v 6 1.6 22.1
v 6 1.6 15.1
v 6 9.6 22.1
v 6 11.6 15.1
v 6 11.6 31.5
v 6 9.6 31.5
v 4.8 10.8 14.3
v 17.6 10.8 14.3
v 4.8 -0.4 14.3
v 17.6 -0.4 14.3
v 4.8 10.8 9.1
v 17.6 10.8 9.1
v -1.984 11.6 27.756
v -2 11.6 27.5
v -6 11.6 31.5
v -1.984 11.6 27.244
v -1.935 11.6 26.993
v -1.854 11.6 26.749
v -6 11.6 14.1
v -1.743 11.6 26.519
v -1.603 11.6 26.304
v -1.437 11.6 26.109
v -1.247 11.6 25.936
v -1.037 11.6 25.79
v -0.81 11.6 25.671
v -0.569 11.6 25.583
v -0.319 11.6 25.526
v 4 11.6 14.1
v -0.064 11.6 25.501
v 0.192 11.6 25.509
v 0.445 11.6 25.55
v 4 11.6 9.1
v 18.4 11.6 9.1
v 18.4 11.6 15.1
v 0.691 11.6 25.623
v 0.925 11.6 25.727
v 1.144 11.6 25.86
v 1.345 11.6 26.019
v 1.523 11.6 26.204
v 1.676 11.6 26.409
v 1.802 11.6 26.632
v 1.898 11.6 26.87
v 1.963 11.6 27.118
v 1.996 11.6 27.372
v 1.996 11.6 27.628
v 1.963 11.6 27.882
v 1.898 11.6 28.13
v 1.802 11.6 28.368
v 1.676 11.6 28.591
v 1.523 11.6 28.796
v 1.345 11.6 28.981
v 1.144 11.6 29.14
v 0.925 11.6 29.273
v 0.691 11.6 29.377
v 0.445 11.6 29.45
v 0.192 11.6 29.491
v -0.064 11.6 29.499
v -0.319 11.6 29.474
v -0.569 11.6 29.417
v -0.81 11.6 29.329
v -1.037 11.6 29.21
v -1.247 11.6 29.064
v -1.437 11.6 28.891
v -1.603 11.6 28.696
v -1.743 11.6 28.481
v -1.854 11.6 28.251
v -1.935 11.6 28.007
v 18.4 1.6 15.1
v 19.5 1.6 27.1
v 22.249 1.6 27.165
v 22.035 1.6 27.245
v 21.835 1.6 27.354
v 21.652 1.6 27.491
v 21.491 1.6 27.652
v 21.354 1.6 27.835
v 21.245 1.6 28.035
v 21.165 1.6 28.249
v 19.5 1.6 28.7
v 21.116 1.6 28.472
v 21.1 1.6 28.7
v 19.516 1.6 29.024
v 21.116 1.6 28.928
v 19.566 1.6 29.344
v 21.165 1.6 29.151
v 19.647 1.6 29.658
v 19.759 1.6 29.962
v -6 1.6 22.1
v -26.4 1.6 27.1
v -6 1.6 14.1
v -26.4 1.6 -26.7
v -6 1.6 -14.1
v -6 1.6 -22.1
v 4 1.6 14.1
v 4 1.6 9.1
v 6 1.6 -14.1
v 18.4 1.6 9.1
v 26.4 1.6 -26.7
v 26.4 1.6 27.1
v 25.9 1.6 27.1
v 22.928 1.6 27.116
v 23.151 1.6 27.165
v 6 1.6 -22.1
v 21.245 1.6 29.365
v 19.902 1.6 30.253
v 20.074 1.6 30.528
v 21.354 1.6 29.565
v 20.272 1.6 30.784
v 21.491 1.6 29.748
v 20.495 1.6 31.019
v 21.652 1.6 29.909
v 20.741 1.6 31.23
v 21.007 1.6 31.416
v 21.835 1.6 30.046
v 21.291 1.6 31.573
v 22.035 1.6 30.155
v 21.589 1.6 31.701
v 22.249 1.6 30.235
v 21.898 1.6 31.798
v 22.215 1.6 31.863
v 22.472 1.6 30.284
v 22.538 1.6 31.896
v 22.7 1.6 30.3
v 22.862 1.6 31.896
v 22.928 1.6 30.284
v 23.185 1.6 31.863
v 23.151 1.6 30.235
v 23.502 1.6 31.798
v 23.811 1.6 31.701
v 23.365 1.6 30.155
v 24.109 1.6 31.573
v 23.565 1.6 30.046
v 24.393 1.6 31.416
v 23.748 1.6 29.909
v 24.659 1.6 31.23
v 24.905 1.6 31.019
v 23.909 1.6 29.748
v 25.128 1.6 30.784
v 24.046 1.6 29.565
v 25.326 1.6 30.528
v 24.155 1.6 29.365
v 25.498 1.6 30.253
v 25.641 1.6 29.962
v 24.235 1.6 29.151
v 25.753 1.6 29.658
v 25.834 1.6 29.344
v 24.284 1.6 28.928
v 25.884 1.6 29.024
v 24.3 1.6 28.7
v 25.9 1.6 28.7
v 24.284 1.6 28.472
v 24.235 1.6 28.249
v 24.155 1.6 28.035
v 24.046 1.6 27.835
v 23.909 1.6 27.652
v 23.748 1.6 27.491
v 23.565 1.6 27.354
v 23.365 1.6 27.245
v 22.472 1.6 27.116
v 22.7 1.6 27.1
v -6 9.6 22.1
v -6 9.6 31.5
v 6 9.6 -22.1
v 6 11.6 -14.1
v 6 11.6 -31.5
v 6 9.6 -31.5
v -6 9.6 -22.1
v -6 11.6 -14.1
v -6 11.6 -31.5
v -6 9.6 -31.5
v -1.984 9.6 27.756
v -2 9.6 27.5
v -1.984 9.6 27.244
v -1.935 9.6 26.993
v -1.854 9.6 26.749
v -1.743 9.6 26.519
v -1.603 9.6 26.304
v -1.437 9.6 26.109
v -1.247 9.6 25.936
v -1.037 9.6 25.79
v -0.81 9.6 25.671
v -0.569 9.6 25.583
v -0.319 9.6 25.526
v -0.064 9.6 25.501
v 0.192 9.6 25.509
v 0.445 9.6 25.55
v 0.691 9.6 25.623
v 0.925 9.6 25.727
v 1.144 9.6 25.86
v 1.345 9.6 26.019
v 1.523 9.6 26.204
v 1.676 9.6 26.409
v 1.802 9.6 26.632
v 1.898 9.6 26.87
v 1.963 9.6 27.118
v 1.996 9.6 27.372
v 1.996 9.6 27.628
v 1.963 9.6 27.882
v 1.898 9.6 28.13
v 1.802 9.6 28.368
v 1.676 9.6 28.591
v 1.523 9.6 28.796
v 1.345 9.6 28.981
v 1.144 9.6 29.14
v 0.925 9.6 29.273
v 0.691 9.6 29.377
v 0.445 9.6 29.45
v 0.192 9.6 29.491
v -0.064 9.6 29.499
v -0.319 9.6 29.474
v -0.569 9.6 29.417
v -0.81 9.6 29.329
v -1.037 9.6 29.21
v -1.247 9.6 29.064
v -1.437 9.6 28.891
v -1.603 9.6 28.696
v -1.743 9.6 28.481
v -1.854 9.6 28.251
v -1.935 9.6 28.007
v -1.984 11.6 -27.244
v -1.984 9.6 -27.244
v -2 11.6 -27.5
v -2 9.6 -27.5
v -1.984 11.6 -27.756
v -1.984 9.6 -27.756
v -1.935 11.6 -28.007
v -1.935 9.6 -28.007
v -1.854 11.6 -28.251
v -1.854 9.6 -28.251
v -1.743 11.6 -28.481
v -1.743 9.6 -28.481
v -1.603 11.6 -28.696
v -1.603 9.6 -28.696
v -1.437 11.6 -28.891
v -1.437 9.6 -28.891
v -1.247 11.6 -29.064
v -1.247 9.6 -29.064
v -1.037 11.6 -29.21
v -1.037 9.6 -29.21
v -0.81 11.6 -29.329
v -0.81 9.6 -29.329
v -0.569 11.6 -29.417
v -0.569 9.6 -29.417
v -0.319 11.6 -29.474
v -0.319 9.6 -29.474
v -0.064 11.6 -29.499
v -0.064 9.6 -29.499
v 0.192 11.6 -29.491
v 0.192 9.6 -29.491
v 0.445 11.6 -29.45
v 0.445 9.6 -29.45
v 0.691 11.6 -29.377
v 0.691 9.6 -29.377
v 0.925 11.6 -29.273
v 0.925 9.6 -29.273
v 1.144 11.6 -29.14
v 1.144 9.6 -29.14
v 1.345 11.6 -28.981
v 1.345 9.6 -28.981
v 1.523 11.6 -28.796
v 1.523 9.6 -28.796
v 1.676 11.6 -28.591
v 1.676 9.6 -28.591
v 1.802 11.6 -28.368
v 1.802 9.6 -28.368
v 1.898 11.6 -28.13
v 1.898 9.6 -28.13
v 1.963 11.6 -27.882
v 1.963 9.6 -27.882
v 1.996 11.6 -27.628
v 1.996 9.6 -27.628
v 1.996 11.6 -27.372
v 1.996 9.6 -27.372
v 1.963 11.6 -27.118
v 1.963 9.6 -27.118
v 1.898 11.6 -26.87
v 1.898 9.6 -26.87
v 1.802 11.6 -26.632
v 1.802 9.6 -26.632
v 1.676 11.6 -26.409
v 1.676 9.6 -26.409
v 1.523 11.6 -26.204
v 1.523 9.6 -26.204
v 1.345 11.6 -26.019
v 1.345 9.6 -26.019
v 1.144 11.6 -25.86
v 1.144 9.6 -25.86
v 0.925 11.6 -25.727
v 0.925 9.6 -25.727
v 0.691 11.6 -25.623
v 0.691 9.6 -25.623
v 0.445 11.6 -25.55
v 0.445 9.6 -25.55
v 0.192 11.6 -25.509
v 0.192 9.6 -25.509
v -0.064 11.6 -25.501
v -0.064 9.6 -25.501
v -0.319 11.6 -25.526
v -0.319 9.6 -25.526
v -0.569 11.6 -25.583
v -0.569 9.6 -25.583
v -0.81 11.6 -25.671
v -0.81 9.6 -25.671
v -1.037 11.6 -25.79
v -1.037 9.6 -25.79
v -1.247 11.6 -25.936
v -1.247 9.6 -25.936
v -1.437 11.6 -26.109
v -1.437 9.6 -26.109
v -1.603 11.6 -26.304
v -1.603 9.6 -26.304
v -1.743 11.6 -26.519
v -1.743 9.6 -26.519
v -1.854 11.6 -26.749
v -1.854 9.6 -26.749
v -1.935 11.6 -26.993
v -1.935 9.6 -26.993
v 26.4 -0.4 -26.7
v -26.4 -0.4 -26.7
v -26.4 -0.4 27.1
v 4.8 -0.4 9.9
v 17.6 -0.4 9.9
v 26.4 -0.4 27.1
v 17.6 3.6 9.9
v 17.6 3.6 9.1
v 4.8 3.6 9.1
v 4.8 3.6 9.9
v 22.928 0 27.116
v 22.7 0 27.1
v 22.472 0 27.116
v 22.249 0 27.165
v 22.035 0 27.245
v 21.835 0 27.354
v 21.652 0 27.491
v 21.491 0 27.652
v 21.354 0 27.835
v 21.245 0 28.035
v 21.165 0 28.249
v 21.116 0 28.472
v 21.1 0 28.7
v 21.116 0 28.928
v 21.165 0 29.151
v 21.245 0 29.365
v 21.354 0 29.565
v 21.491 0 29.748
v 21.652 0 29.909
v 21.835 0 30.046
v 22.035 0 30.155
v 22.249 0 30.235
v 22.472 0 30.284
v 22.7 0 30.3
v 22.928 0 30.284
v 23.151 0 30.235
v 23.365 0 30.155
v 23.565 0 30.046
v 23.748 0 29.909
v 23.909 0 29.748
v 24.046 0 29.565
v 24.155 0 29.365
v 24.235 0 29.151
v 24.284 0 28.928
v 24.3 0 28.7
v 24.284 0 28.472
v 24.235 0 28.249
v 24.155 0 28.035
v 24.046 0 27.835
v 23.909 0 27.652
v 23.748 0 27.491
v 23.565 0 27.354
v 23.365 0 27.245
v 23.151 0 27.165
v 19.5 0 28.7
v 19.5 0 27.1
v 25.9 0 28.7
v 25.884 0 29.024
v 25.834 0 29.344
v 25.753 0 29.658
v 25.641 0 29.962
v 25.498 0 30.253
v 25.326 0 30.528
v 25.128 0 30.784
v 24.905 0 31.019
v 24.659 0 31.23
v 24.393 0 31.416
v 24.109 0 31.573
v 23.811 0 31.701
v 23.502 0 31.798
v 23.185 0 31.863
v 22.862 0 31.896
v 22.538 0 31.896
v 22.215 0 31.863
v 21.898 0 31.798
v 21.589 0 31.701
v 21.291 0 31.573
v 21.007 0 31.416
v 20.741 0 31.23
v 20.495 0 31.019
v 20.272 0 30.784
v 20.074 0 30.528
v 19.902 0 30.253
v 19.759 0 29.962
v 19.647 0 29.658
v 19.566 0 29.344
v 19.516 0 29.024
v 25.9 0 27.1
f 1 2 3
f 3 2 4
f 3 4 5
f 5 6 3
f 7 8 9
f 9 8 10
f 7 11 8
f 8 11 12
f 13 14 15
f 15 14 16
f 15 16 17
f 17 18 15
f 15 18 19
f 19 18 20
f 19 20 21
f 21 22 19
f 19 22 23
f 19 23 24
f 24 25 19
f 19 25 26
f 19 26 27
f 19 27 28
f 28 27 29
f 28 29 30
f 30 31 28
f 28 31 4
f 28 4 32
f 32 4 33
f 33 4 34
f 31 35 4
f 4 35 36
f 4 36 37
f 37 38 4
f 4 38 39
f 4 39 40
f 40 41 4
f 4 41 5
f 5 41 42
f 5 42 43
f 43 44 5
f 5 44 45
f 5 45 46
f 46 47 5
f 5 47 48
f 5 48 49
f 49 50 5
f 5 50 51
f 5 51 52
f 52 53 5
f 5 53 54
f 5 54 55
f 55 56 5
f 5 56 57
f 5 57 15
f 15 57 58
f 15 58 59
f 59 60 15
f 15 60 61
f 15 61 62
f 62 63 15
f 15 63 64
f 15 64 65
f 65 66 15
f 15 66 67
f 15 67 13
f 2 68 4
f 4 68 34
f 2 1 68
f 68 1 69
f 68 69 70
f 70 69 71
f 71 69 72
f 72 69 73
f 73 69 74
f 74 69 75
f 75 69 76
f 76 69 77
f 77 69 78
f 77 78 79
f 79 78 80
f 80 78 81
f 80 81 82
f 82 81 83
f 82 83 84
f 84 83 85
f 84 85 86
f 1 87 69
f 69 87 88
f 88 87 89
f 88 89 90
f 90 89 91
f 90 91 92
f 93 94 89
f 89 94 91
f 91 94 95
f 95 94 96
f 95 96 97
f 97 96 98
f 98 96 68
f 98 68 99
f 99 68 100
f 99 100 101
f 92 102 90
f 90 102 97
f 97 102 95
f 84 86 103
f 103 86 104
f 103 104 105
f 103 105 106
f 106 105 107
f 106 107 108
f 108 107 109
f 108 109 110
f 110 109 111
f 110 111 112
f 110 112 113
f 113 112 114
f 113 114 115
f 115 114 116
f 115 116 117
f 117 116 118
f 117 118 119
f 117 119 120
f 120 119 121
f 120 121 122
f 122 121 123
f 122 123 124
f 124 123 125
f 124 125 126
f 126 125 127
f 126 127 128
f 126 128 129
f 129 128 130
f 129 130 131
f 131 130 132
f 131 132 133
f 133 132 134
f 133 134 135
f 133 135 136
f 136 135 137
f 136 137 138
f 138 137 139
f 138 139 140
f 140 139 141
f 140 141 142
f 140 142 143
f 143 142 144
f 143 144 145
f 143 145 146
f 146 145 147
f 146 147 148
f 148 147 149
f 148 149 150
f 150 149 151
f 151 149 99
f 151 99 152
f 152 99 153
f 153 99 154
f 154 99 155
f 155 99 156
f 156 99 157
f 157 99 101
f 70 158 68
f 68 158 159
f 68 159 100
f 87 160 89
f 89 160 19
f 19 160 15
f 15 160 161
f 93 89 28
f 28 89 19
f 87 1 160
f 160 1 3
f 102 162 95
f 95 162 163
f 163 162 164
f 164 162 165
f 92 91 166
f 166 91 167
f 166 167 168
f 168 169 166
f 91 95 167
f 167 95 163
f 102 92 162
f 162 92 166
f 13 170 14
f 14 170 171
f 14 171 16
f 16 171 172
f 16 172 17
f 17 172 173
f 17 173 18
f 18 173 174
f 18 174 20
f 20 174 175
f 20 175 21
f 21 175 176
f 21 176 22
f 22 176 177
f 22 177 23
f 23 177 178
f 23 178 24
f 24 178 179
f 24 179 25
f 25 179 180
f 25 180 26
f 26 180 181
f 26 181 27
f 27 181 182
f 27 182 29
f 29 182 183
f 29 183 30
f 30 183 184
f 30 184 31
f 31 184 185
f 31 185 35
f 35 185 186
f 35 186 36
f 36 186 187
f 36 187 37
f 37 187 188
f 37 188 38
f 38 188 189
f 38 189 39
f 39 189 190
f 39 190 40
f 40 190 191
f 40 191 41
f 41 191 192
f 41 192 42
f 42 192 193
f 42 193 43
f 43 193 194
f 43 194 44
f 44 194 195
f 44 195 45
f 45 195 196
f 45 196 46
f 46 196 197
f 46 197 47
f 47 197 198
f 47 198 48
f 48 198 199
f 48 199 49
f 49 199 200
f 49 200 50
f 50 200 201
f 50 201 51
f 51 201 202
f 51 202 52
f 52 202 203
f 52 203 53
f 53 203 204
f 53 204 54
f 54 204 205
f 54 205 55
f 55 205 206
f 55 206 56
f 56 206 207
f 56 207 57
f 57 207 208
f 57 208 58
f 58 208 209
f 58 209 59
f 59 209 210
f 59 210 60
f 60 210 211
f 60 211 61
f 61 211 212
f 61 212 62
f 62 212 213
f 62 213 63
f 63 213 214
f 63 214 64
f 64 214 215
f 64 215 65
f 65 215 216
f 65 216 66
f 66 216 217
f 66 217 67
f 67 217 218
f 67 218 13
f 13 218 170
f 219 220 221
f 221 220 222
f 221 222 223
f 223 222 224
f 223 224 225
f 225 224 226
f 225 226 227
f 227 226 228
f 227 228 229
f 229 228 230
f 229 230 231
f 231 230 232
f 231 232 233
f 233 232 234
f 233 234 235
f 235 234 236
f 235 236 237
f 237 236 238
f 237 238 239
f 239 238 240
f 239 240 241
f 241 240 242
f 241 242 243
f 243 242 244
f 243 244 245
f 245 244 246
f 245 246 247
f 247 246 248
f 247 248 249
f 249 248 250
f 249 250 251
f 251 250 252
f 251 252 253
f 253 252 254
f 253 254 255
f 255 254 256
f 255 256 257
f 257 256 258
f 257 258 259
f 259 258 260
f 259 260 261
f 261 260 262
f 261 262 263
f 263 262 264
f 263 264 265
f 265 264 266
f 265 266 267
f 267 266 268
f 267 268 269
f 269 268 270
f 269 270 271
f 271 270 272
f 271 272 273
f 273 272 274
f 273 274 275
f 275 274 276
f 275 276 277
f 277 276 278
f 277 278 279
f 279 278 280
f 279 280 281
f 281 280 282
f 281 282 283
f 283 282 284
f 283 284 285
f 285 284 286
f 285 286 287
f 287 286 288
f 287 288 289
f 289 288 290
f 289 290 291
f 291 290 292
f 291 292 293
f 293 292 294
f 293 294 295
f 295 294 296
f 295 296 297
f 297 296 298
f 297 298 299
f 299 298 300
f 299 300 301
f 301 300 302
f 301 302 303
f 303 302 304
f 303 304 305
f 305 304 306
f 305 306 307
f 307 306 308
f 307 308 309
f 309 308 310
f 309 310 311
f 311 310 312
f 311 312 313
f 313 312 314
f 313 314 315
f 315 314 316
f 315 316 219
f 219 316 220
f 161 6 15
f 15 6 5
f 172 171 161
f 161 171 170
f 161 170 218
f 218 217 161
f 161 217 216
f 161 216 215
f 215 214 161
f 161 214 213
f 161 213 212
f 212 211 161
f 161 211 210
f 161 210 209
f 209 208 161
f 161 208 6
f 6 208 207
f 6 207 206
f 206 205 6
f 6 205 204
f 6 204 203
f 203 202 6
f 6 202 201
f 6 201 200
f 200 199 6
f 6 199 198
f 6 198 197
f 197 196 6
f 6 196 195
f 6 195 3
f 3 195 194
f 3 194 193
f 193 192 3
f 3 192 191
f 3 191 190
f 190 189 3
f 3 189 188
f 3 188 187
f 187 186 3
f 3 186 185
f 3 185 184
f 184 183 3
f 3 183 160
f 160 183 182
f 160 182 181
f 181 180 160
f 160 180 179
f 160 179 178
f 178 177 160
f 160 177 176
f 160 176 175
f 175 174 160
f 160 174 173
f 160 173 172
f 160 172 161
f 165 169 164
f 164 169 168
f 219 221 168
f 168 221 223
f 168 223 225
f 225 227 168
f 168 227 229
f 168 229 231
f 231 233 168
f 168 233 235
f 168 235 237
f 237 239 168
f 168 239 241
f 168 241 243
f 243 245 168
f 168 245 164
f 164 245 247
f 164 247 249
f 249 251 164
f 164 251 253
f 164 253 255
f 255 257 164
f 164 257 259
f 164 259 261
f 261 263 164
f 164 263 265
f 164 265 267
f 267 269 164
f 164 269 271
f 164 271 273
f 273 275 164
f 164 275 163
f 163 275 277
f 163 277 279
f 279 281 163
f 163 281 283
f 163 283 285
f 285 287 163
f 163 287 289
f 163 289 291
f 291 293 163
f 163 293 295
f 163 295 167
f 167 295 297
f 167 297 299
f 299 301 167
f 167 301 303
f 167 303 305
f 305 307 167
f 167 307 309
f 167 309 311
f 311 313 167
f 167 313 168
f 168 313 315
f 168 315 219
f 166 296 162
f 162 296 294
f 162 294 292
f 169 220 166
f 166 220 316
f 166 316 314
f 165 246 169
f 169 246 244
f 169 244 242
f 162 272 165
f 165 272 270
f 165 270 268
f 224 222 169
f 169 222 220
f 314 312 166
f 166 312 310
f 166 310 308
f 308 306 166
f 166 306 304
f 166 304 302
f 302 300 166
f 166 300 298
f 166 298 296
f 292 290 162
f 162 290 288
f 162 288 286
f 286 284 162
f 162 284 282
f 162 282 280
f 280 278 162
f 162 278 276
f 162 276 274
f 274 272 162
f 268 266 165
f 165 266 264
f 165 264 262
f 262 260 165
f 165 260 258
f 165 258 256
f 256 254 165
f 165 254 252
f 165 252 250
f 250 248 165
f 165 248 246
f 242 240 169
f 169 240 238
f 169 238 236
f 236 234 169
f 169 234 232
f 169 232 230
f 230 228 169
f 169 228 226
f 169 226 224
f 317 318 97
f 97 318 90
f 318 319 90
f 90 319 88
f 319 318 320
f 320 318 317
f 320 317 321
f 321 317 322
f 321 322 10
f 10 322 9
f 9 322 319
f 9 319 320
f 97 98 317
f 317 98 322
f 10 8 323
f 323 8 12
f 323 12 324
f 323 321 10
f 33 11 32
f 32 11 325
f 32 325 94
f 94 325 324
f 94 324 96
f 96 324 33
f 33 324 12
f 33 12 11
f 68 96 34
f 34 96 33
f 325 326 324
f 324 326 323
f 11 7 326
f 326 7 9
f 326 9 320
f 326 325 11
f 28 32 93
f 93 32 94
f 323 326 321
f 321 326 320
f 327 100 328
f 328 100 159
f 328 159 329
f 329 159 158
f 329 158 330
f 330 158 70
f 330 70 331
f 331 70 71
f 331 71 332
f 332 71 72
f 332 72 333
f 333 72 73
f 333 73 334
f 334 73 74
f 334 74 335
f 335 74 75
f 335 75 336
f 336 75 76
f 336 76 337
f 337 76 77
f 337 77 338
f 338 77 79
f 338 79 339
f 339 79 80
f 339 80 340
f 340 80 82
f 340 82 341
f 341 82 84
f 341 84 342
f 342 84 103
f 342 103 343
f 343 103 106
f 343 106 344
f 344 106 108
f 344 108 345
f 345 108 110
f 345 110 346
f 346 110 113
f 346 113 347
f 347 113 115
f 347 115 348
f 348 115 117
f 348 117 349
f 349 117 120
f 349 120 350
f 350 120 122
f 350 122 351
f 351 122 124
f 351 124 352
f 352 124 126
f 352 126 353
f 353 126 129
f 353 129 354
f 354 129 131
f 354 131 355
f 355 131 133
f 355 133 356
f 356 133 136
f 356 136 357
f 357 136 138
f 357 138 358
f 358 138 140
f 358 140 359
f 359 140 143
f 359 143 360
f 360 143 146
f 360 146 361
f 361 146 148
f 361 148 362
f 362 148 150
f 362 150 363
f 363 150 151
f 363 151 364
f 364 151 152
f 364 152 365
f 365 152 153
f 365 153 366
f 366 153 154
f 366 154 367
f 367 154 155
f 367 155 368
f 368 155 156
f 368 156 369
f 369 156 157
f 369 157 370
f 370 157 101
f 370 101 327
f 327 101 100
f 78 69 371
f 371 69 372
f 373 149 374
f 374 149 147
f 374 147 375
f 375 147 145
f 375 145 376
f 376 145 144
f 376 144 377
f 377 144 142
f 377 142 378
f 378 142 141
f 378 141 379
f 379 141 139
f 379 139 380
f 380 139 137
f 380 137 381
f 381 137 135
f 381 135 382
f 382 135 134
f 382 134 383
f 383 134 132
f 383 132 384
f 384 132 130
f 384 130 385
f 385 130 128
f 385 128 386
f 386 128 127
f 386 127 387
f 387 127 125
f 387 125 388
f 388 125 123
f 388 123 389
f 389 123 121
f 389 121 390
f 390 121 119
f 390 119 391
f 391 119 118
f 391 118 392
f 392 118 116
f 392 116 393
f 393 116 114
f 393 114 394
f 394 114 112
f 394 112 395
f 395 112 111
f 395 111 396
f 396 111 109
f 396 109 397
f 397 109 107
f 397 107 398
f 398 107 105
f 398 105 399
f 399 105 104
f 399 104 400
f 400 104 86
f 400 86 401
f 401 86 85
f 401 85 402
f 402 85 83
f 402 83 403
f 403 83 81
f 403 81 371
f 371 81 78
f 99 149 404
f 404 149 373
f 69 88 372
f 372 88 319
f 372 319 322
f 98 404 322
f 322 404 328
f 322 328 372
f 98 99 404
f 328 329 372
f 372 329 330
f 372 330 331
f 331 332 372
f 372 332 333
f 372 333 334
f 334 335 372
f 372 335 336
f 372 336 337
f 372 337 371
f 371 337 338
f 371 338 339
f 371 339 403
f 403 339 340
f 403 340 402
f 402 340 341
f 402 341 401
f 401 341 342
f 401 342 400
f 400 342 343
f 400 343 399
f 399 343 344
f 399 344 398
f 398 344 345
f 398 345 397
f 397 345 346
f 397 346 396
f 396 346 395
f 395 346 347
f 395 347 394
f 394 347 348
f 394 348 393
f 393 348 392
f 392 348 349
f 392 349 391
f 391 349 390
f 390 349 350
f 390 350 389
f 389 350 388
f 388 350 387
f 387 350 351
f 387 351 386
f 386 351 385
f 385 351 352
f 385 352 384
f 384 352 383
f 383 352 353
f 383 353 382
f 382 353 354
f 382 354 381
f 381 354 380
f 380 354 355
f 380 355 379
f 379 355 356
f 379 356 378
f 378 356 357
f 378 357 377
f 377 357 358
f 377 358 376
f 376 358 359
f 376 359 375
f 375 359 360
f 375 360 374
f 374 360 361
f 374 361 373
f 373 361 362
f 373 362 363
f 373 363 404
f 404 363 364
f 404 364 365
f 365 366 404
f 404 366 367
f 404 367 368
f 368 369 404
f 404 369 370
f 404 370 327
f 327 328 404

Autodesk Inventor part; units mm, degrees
ref_plane "YZ Plane" through (0, 0, 0) normal (1, 0, 0) x (0, 1, 0)
ref_plane "XZ Plane" through (0, 0, 0) normal (0, 1, 0) x (-1, 0, 0)
ref_plane "XY Plane" through (0, 0, 0) normal (0, 0, 1) x (1, 0, 0)
sketch "Szkic1" plane through (0, 0, 0) normal (0, 1, 0) x (-1, 0, 0)
  line L0 (26.7, -27.1) -> (-26.7, -27.1)
  line L1 (-26.7, -27.1) -> (-26.7, 27.1)
  line L2 (-26.7, 27.1) -> (26.7, 27.1)
  line L3 (26.7, 27.1) -> (26.7, -27.1)
  line L4 (26.7, -27.1) -> (-26.7, 27.1) construction
  line L5 (-26.7, -27.1) -> (26.7, 27.1) construction
  point P0 (0, 0)
  dimension "d0" = 53.4
  dimension "d1" = 54.2
extrude "Wyciągnięcie proste1" add sketch "Szkic1" along normal blind 1.6
sketch "Szkic11" plane through (0, 1.6, 0) normal (0, 1, 0) x (1, 0, 0)
  line L0 (-26.7, -27.1) -> (26.7, -27.1) projected
  line L1 (26.7, -27.1) -> (25.9, -27.1)
  line L2 (25.9, -27.1) -> (19.5, -27.1)
  line L3 (19.5, -27.1) -> (19.5, -28.7)
  line L4 (19.5, -28.7) -> (25.9, -28.7)
  line L5 (25.9, -28.7) -> (25.9, -27.1)
  arc A0 (19.5, -28.7) -> (25.9, -28.7) centre (22.7, -28.7) ccw
  point P0 (0, 0)
  dimension "d37" = 0.8
  dimension "d38" = 6.4
  dimension "d39" = 1.6
  dimension "d40" = 3.2
extrude "Wyciągnięcie proste10" add sketch "Szkic11" against normal blind 1.6
sketch "Szkic12" plane through (0, 1.6, 0) normal (0, 1, 0) x (1, 0, 0)
  arc A0 (19.5, -28.7) -> (25.9, -28.7) centre (22.7, -28.7) ccw projected
  circle A1 centre (22.7, -28.7) radius 1.6
  point P0 (0, 0)
  dimension "d43" = 3.2
extrude "Wyciągnięcie proste11" cut sketch "Szkic12" against normal through all
sketch "Szkic24" plane through (0, 1.6, 0) normal (0, 1, 0) x (1, 0, 0)
  line L0 (11.2, -12.1) -> (11.2, -27.1)
  line L1 (-26.7, -27.1) -> (19.5, -27.1) projected
  line L2 (11.2, -12.1) -> (26.2, -12.1) construction
  line L3 (11.2, -12.1) -> (26.7, -12.1)
  line L4 (26.7, -27.1) -> (26.7, 27.1) projected
  line L5 (11.2, -12.1) -> (26.7, -12.1) construction
  line L6 (4.8, -9.9) -> (17.6, -9.9)
  line L7 (17.6, -9.9) -> (17.6, -14.3)
  line L8 (17.6, -14.3) -> (4.8, -14.3)
  line L9 (4.8, -14.3) -> (4.8, -9.9)
  line L10 (4.8, -9.9) -> (17.6, -14.3) construction
  line L11 (17.6, -9.9) -> (4.8, -14.3) construction
  point P0 (0, 0)
  dimension "d104" = 15
  dimension "d105" = 90
  dimension "d106" = 15.5
  dimension "d107" = 0
  dimension "d108" = 12.8
  dimension "d109" = 4.4
extrude "Wyciągnięcie proste22" cut sketch "Szkic24" against normal through all
sketch "Szkic33" plane through (0, 1.6, 0) normal (0, 1, 0) x (1, 0, 0)
  line L0 (4.8, -14.3) -> (17.6, -14.3) projected
  line L1 (4, 4) -> (4, 25.6) projected
  line L2 (17.6, -14.3) -> (4, -14.3)
  line L3 (4, -14.3) -> (4, -15.1)
  line L4 (4, -15.1) -> (17.6, -15.1)
  line L5 (17.6, -15.1) -> (17.6, -14.3)
  line L6 (4, -15.1) -> (4.8, -15.1)
  line L7 (4.8, -15.1) -> (4.8, -9.1)
  line L8 (4.8, -9.1) -> (4, -9.1)
  line L9 (4, -9.1) -> (4, -15.1)
  line L10 (17.6, -15.1) -> (18.4, -15.1)
  line L11 (18.4, -15.1) -> (18.4, -9.1)
  line L12 (18.4, -9.1) -> (17.6, -9.1)
  line L13 (17.6, -9.1) -> (17.6, -15.1)
  point P0 (0, 0)
  point P1 (4, -21.6)
  point P2 (4, -10)
  point P3 (17.6, -14.3)
  point P4 (4, -10)
  dimension "d139" = 0.8
  dimension "d140" = 6
  dimension "d141" = 0.8
extrude "Wyciągnięcie proste30" add sketch "Szkic33" along normal blind 10
sketch "Szkic34" plane through (0, 1.6, 0) normal (0, 1, 0) x (1, 0, 0)
  line L0 (17.6, -9.9) -> (4.8, -9.9) projected
  line L1 (4.8, -14.3) -> (4.8, -9.1) projected
  line L2 (17.6, -9.9) -> (4.8, -9.9)
  line L3 (4.8, -9.9) -> (4.8, -9.1)
  line L4 (4.8, -9.1) -> (17.6, -9.1)
  line L5 (17.6, -9.1) -> (17.6, -9.9)
  point P0 (0, 0)
extrude "Wyciągnięcie proste31" add sketch "Szkic34" along normal blind 2
sketch "Szkic35" plane through (0, 11.6, 0) normal (0, 1, 0) x (1, 0, 0)
  line L0 (4.8, -9.1) -> (4, -9.1) projected
  line L1 (18.4, -15.1) -> (4, -15.1)
  line L2 (4, -15.1) -> (4, -9.1)
  line L3 (4, -9.1) -> (18.4, -9.1)
  line L4 (18.4, -9.1) -> (18.4, -15.1)
  point P0 (0, 0)
  point P1 (4.8, -9.1)
extrude "Wyciągnięcie proste32" add sketch "Szkic35" against normal blind 0.8
sketch "Szkic49" plane through (26.7, 0, 27.1) normal (1, 0, 0) x (0, 0, -1)
  line L0 (54.2, 0) -> (54.2, 1.6) projected
  line L1 (0, 0) -> (54.2, 0)
  line L2 (54.2, 0) -> (54.2, 1.6)
  line L3 (54.2, 1.6) -> (0, 1.6)
  line L4 (0, 1.6) -> (0, 0)
  point P0 (27.1, 0)
extrude "Wyciągnięcie proste41" cut sketch "Szkic49" against normal blind 0.3
sketch "Szkic50" plane through (-26.7, 0, -27.1) normal (-1, 0, 0) x (0, 0, 1)
  line L0 (0, 1.6) -> (0, 0) projected
  line L1 (0, 0) -> (54.2, 0) projected
  line L2 (0, 1.6) -> (54.2, 1.6)
  line L3 (54.2, 1.6) -> (54.2, 0)
  line L4 (54.2, 0) -> (0, 0)
  line L5 (0, 0) -> (0, 1.6)
  point P0 (27.1, 0)
extrude "Wyciągnięcie proste42" cut sketch "Szkic50" against normal blind 0.3
sketch "Szkic57" plane through (0, 0, 0) normal (0, -1, 0) x (1, 0, 0)
  line L0 (-26.4, -27.1) -> (-26.4, 27.1) projected
  line L1 (-26.4, 27.1) -> (26.4, 27.1)
  line L2 (26.4, 27.1) -> (26.4, -27.1)
  line L3 (26.4, -27.1) -> (-26.4, -27.1)
  line L4 (-26.4, -27.1) -> (-26.4, 27.1)
  line L5 (4.8, 14.3) -> (17.6, 14.3) projected
  line L6 (4.8, 9.9) -> (17.6, 9.9) projected
  line L7 (4.8, 14.3) -> (17.6, 14.3)
  line L8 (17.6, 14.3) -> (17.6, 9.9)
  line L9 (17.6, 9.9) -> (4.8, 9.9)
  line L10 (4.8, 9.9) -> (4.8, 14.3)
  point P0 (0, 0)
  point P1 (17.6, 14.3)
extrude "Wyciągnięcie proste48" add sketch "Szkic57" along normal blind 0.4
sketch "Szkic62" plane through (26.4, 1.6, -27.1) normal (0, 0, -1) x (-1, 0, 0)
  line L0 (52.8, 0) -> (52.8, -2) projected
  line L1 (52.8, -2) -> (0, -2)
  line L2 (0, -2) -> (0, 0)
  line L3 (0, 0) -> (52.8, 0)
  line L4 (52.8, 0) -> (52.8, -2)
  point P0 (26.4, -1.6)
extrude "Wyciągnięcie proste52" cut sketch "Szkic62" against normal blind 0.4
sketch "Szkic63" plane through (0, 1.6, 0) normal (0, 1, 0) x (1, 0, 0)
  line L0 (0, 0) -> (0, 27.5)
  line L1 (0, 0) -> (27.5, 0) construction
  circle A0 centre (0, 27.5) radius 2
  line L2 (0, 0) -> (0, -27.5)
  line L3 (0, 0) -> (27.5, 0) construction
  circle A1 centre (0, -27.5) radius 2
  dimension "d235" = 27.5
  dimension "d236" = 90
  dimension "d237" = 4
  dimension "d238" = 27.5
  dimension "d239" = 90
  dimension "d240" = 4
sketch "Szkic64" plane through (0, 1.6, 0) normal (0, 1, 0) x (1, 0, 0)
  line L0 (26.4, 26.7) -> (-26.4, 26.7) projected
  line L1 (0, 26.7) -> (0, 25.1)
  line L2 (0, 25.1) -> (-4, 25.1)
  line L3 (-4, 25.1) -> (-4, 18.7)
  line L4 (-4, 18.7) -> (0, 18.7)
  line L5 (0, 18.7) -> (0, 25.1)
  point P0 (0, 0)
  dimension "d241" = 1.6
  dimension "d242" = 4
  dimension "d243" = 6.4
extrude "Wyciągnięcie proste53" add sketch "Szkic64" along normal blind 8
mirror "Odbij11" about plane through (0, 0, 0) normal (1, 0, 0) of "Wyciągnięcie proste53"
sketch "Szkic65" plane through (0, 9.6, 0) normal (0, 1, 0) x (1, 0, 0)
  line L0 (-4, 25.1) -> (4, 25.1) projected
  line L1 (-4, 25.1) -> (4, 25.1)
  line L2 (4, 25.1) -> (4, 31.5)
  line L3 (4, 31.5) -> (-4, 31.5)
  line L4 (-4, 31.5) -> (-4, 25.1)
  point P0 (0, 0)
  dimension "d246" = 6.4
extrude "Wyciągnięcie proste54" add sketch "Szkic65" along normal blind 2
mirror "Odbij12" about plane through (0, 0, 0) normal (0, 0, 1) of "Wyciągnięcie proste53", "Odbij11", "Wyciągnięcie proste54"
extrude "Wyciągnięcie proste55" cut sketch "Szkic63" along normal through all
sketch "Szkic66" plane through (0, 9.6, 0) normal (0, 1, 0) x (1, 0, 0)
  line L0 (-4, 18.7) -> (-4, 25.1) projected
  line L1 (-4, 25.1) -> (4, 25.1) projected
  line L2 (-4, 18.7) -> (4, 18.7)
  line L3 (4, 18.7) -> (4, 25.1)
  line L4 (4, 25.1) -> (-4, 25.1)
  line L5 (-4, 25.1) -> (-4, 18.7)
  line L6 (-4, -25.1) -> (-4, -18.7) projected
  line L7 (-4, -25.1) -> (4, -25.1) projected
  line L8 (-4, -18.7) -> (4, -18.7)
  line L9 (4, -18.7) -> (4, -25.1)
  line L10 (4, -25.1) -> (-4, -25.1)
  line L11 (-4, -25.1) -> (-4, -18.7)
  point P0 (0, 0)
extrude "Wyciągnięcie proste56" add sketch "Szkic66" along normal blind 2
sketch "Szkic67" plane through (4, 1.6, -25.1) normal (0, 0, -1) x (-1, 0, 0)
  line L0 (0, 8) -> (8, 8) projected
  line L1 (8, 0) -> (0, 0) projected
  line L2 (8, 8) -> (0, 8)
  line L3 (0, 8) -> (0, 0)
  line L4 (0, 0) -> (8, 0)
  line L5 (8, 0) -> (8, 8)
  point P0 (4, -1.6)
extrude "Wyciągnięcie proste57" cut sketch "Szkic67" against normal blind 3
sketch "Szkic68" plane through (-4, 1.6, -18.7) normal (0, 0, 1) x (1, 0, 0)
  line L0 (8, 0) -> (8, 10) projected
  line L1 (8, 0) -> (0, 0) projected
  line L2 (8, 10) -> (0, 10)
  line L3 (0, 10) -> (0, 0)
  line L4 (0, 0) -> (8, 0)
  line L5 (8, 0) -> (8, 10)
  point P0 (4, -1.6)
extrude "Wyciągnięcie proste58" add sketch "Szkic68" along normal blind 4.6
sketch "Szkic69" plane through (-4, 9.6, -31.5) normal (-1, 0, 0) x (0, 0, 1)
  line L0 (17.4, 2) -> (17.4, -8) projected
  line L1 (17.4, 2) -> (17.4, -8)
  line L2 (9.4, -8) -> (17.4, -8) projected
  line L3 (17.4, -8) -> (9.4, -8)
  line L4 (9.4, -8) -> (9.4, 0) projected
  line L5 (9.4, -8) -> (9.4, 0)
  line L6 (0, 0) -> (0, 2) projected
  line L7 (9.4, 0) -> (0, 0)
  line L8 (0, 0) -> (0, 2)
  line L9 (0, 2) -> (17.4, 2) projected
  line L10 (0, 2) -> (17.4, 2)
  point P0 (31.5, -9.6)
extrude "Wyciągnięcie proste59" add sketch "Szkic69" along normal blind 2
mirror "Odbij13" about plane through (0, 0, 0) normal (1, 0, 0) of "Wyciągnięcie proste59"
mirror "Odbij14" about plane through (0, 0, 0) normal (0, 0, 1) of "Wyciągnięcie proste56", "Wyciągnięcie proste57", "Wyciągnięcie proste58", "Wyciągnięcie proste59", "Odbij13"
sketch "Szkic70" plane through (4.8, 1.6, 14.3) normal (0, -1, 0) x (1, 0, 0)
  line L0 (0, -0.2) -> (1.2, -0.2) projected
  line L1 (1.2, -0.2) -> (0, -0.2)
  line L2 (0, -0.2) -> (0, 0)
  line L3 (0, 0) -> (1.2, 0)
  line L4 (1.2, 0) -> (1.2, -0.2)
  point P0 (-4.8, -14.3)
extrude "Wyciągnięcie proste60" cut sketch "Szkic70" against normal up to surface (9.2 mm away)
properties part number "uchwyt2"
